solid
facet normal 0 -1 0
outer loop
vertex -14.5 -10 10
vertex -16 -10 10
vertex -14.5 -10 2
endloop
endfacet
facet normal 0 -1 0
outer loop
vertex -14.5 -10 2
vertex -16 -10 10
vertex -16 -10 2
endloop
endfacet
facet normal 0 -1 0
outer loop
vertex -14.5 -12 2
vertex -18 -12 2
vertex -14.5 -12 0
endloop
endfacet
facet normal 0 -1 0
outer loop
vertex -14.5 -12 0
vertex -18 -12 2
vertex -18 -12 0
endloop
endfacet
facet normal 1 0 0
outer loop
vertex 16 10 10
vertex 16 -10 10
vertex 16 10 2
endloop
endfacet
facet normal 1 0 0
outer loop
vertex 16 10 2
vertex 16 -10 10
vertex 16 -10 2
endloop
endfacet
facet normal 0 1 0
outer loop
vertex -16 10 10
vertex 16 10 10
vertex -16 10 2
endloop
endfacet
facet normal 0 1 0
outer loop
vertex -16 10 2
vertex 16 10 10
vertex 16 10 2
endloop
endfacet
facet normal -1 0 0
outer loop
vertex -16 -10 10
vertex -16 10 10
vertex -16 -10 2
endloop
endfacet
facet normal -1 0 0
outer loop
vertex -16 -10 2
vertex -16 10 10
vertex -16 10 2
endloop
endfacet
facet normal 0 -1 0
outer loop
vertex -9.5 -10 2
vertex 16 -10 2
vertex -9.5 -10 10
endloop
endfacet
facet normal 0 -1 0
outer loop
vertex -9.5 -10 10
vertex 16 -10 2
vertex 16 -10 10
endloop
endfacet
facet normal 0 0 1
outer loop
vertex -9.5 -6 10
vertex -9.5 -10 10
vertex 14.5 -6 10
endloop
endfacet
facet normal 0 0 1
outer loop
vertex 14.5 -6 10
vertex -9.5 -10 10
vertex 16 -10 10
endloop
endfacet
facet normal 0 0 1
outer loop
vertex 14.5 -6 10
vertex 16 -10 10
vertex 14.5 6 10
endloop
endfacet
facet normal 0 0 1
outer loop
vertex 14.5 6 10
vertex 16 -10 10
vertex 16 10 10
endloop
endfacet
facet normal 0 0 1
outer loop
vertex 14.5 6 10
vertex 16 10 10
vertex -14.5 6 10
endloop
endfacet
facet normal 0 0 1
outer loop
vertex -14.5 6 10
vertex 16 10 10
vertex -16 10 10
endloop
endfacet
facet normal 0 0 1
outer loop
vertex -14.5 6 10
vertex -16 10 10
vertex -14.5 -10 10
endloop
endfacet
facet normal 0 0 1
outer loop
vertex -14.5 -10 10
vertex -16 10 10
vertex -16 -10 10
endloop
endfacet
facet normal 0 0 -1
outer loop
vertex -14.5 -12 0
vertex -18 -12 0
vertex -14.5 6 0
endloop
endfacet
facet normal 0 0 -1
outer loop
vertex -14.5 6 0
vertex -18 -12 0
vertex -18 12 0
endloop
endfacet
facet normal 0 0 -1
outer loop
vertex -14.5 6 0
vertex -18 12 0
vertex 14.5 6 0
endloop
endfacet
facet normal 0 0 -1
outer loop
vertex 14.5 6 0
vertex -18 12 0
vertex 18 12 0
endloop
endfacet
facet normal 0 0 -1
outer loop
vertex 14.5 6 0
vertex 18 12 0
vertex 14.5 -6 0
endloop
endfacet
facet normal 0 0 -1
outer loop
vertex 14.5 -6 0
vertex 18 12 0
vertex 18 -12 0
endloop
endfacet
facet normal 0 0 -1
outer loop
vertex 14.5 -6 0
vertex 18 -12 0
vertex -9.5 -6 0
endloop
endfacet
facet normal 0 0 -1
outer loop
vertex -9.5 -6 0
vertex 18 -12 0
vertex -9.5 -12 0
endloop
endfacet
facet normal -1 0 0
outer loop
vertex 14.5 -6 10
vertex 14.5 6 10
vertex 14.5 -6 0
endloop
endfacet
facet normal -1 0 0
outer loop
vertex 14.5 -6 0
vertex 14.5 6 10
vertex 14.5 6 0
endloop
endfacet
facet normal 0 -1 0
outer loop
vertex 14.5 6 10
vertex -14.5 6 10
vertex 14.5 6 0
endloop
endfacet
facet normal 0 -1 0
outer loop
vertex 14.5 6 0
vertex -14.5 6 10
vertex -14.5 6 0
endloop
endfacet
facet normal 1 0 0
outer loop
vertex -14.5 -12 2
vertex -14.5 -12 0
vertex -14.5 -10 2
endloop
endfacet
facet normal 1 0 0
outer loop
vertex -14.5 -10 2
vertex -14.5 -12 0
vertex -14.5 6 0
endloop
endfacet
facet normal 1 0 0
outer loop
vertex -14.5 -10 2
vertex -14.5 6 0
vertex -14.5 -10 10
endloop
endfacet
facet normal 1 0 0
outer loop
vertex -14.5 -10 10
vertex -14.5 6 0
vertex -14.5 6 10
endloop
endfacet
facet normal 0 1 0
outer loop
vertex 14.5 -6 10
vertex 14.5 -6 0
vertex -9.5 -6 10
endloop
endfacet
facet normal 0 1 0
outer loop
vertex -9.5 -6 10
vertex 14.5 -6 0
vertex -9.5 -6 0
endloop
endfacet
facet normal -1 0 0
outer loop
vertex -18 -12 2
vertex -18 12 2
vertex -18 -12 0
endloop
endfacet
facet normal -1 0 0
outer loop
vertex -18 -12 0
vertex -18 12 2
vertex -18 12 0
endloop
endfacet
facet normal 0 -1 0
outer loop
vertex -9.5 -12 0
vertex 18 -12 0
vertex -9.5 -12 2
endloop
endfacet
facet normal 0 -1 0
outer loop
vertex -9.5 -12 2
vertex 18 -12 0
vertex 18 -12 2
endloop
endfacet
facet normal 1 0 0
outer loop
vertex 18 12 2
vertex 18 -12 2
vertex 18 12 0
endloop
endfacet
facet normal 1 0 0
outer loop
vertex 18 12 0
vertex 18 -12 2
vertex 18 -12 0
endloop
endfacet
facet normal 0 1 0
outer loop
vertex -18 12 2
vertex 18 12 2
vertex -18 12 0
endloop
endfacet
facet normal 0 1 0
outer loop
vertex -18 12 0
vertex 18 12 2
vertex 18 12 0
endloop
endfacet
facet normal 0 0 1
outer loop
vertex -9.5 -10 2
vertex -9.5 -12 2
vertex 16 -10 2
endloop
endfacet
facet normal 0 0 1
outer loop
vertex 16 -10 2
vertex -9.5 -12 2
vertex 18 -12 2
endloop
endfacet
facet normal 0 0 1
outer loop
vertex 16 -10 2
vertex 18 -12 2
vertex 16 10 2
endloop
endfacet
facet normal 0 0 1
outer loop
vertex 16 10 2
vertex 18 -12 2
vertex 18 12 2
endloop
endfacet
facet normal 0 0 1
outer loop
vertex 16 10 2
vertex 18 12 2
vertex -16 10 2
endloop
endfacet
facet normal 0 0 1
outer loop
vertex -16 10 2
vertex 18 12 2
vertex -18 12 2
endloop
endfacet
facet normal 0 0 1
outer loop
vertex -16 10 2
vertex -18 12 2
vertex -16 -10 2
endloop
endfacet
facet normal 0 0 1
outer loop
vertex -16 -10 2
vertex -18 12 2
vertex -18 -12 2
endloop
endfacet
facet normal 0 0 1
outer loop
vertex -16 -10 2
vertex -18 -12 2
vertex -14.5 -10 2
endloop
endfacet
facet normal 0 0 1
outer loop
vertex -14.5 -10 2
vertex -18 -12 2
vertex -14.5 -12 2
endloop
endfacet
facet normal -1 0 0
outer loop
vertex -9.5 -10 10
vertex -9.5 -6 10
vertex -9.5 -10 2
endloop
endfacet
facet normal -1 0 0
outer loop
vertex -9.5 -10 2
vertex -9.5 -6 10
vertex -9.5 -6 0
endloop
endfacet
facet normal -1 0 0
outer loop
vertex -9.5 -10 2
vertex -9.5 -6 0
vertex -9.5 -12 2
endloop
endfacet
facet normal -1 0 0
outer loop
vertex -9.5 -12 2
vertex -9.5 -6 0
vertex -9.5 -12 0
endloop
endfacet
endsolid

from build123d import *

# Parameters (mm, degrees)
SKETCH1_W           = 32
SKETCH1_H           = 20
SKETCH1_W_2         = 29
SKETCH1_H_2         = 12
BOSS_EXTRUDE1_DEPTH = 10
SKETCH2_W           = 36
SKETCH2_H           = 24
SKETCH2_W_2         = 32
SKETCH2_H_2         = 20
BOSS_EXTRUDE2_DEPTH = 2
SKETCH3_W           = 5
SKETCH3_H           = 6
CUT_EXTRUDE2_DEPTH  = 24.832750576


with BuildPart() as part:
    # Sketch1 → Boss-Extrude1 (new body)
    with BuildSketch(Plane.XY):
        Rectangle(SKETCH1_W, SKETCH1_H)
        Rectangle(SKETCH1_W_2, SKETCH1_H_2, mode=Mode.SUBTRACT)
    extrude(amount=BOSS_EXTRUDE1_DEPTH)

    # Sketch2 → Boss-Extrude2 (add)
    with BuildSketch(Plane(origin=(0, 0, 0), x_dir=(-1, 0, 0), z_dir=(0, 0, -1))):
        Rectangle(SKETCH2_W, SKETCH2_H)
        Rectangle(SKETCH2_W_2, SKETCH2_H_2, mode=Mode.SUBTRACT)
    extrude(amount=-BOSS_EXTRUDE2_DEPTH)

    # Sketch3 → Cut-Extrude2 (cut, through all)
    with BuildSketch(Plane(origin=(0, 0, 0), x_dir=(-1, 0, 0), z_dir=(0, 0, -1))):
        with Locations((12, -9)):
            Rectangle(SKETCH3_W, SKETCH3_H)
    extrude(amount=-CUT_EXTRUDE2_DEPTH, mode=Mode.SUBTRACT)


solid = part.part
